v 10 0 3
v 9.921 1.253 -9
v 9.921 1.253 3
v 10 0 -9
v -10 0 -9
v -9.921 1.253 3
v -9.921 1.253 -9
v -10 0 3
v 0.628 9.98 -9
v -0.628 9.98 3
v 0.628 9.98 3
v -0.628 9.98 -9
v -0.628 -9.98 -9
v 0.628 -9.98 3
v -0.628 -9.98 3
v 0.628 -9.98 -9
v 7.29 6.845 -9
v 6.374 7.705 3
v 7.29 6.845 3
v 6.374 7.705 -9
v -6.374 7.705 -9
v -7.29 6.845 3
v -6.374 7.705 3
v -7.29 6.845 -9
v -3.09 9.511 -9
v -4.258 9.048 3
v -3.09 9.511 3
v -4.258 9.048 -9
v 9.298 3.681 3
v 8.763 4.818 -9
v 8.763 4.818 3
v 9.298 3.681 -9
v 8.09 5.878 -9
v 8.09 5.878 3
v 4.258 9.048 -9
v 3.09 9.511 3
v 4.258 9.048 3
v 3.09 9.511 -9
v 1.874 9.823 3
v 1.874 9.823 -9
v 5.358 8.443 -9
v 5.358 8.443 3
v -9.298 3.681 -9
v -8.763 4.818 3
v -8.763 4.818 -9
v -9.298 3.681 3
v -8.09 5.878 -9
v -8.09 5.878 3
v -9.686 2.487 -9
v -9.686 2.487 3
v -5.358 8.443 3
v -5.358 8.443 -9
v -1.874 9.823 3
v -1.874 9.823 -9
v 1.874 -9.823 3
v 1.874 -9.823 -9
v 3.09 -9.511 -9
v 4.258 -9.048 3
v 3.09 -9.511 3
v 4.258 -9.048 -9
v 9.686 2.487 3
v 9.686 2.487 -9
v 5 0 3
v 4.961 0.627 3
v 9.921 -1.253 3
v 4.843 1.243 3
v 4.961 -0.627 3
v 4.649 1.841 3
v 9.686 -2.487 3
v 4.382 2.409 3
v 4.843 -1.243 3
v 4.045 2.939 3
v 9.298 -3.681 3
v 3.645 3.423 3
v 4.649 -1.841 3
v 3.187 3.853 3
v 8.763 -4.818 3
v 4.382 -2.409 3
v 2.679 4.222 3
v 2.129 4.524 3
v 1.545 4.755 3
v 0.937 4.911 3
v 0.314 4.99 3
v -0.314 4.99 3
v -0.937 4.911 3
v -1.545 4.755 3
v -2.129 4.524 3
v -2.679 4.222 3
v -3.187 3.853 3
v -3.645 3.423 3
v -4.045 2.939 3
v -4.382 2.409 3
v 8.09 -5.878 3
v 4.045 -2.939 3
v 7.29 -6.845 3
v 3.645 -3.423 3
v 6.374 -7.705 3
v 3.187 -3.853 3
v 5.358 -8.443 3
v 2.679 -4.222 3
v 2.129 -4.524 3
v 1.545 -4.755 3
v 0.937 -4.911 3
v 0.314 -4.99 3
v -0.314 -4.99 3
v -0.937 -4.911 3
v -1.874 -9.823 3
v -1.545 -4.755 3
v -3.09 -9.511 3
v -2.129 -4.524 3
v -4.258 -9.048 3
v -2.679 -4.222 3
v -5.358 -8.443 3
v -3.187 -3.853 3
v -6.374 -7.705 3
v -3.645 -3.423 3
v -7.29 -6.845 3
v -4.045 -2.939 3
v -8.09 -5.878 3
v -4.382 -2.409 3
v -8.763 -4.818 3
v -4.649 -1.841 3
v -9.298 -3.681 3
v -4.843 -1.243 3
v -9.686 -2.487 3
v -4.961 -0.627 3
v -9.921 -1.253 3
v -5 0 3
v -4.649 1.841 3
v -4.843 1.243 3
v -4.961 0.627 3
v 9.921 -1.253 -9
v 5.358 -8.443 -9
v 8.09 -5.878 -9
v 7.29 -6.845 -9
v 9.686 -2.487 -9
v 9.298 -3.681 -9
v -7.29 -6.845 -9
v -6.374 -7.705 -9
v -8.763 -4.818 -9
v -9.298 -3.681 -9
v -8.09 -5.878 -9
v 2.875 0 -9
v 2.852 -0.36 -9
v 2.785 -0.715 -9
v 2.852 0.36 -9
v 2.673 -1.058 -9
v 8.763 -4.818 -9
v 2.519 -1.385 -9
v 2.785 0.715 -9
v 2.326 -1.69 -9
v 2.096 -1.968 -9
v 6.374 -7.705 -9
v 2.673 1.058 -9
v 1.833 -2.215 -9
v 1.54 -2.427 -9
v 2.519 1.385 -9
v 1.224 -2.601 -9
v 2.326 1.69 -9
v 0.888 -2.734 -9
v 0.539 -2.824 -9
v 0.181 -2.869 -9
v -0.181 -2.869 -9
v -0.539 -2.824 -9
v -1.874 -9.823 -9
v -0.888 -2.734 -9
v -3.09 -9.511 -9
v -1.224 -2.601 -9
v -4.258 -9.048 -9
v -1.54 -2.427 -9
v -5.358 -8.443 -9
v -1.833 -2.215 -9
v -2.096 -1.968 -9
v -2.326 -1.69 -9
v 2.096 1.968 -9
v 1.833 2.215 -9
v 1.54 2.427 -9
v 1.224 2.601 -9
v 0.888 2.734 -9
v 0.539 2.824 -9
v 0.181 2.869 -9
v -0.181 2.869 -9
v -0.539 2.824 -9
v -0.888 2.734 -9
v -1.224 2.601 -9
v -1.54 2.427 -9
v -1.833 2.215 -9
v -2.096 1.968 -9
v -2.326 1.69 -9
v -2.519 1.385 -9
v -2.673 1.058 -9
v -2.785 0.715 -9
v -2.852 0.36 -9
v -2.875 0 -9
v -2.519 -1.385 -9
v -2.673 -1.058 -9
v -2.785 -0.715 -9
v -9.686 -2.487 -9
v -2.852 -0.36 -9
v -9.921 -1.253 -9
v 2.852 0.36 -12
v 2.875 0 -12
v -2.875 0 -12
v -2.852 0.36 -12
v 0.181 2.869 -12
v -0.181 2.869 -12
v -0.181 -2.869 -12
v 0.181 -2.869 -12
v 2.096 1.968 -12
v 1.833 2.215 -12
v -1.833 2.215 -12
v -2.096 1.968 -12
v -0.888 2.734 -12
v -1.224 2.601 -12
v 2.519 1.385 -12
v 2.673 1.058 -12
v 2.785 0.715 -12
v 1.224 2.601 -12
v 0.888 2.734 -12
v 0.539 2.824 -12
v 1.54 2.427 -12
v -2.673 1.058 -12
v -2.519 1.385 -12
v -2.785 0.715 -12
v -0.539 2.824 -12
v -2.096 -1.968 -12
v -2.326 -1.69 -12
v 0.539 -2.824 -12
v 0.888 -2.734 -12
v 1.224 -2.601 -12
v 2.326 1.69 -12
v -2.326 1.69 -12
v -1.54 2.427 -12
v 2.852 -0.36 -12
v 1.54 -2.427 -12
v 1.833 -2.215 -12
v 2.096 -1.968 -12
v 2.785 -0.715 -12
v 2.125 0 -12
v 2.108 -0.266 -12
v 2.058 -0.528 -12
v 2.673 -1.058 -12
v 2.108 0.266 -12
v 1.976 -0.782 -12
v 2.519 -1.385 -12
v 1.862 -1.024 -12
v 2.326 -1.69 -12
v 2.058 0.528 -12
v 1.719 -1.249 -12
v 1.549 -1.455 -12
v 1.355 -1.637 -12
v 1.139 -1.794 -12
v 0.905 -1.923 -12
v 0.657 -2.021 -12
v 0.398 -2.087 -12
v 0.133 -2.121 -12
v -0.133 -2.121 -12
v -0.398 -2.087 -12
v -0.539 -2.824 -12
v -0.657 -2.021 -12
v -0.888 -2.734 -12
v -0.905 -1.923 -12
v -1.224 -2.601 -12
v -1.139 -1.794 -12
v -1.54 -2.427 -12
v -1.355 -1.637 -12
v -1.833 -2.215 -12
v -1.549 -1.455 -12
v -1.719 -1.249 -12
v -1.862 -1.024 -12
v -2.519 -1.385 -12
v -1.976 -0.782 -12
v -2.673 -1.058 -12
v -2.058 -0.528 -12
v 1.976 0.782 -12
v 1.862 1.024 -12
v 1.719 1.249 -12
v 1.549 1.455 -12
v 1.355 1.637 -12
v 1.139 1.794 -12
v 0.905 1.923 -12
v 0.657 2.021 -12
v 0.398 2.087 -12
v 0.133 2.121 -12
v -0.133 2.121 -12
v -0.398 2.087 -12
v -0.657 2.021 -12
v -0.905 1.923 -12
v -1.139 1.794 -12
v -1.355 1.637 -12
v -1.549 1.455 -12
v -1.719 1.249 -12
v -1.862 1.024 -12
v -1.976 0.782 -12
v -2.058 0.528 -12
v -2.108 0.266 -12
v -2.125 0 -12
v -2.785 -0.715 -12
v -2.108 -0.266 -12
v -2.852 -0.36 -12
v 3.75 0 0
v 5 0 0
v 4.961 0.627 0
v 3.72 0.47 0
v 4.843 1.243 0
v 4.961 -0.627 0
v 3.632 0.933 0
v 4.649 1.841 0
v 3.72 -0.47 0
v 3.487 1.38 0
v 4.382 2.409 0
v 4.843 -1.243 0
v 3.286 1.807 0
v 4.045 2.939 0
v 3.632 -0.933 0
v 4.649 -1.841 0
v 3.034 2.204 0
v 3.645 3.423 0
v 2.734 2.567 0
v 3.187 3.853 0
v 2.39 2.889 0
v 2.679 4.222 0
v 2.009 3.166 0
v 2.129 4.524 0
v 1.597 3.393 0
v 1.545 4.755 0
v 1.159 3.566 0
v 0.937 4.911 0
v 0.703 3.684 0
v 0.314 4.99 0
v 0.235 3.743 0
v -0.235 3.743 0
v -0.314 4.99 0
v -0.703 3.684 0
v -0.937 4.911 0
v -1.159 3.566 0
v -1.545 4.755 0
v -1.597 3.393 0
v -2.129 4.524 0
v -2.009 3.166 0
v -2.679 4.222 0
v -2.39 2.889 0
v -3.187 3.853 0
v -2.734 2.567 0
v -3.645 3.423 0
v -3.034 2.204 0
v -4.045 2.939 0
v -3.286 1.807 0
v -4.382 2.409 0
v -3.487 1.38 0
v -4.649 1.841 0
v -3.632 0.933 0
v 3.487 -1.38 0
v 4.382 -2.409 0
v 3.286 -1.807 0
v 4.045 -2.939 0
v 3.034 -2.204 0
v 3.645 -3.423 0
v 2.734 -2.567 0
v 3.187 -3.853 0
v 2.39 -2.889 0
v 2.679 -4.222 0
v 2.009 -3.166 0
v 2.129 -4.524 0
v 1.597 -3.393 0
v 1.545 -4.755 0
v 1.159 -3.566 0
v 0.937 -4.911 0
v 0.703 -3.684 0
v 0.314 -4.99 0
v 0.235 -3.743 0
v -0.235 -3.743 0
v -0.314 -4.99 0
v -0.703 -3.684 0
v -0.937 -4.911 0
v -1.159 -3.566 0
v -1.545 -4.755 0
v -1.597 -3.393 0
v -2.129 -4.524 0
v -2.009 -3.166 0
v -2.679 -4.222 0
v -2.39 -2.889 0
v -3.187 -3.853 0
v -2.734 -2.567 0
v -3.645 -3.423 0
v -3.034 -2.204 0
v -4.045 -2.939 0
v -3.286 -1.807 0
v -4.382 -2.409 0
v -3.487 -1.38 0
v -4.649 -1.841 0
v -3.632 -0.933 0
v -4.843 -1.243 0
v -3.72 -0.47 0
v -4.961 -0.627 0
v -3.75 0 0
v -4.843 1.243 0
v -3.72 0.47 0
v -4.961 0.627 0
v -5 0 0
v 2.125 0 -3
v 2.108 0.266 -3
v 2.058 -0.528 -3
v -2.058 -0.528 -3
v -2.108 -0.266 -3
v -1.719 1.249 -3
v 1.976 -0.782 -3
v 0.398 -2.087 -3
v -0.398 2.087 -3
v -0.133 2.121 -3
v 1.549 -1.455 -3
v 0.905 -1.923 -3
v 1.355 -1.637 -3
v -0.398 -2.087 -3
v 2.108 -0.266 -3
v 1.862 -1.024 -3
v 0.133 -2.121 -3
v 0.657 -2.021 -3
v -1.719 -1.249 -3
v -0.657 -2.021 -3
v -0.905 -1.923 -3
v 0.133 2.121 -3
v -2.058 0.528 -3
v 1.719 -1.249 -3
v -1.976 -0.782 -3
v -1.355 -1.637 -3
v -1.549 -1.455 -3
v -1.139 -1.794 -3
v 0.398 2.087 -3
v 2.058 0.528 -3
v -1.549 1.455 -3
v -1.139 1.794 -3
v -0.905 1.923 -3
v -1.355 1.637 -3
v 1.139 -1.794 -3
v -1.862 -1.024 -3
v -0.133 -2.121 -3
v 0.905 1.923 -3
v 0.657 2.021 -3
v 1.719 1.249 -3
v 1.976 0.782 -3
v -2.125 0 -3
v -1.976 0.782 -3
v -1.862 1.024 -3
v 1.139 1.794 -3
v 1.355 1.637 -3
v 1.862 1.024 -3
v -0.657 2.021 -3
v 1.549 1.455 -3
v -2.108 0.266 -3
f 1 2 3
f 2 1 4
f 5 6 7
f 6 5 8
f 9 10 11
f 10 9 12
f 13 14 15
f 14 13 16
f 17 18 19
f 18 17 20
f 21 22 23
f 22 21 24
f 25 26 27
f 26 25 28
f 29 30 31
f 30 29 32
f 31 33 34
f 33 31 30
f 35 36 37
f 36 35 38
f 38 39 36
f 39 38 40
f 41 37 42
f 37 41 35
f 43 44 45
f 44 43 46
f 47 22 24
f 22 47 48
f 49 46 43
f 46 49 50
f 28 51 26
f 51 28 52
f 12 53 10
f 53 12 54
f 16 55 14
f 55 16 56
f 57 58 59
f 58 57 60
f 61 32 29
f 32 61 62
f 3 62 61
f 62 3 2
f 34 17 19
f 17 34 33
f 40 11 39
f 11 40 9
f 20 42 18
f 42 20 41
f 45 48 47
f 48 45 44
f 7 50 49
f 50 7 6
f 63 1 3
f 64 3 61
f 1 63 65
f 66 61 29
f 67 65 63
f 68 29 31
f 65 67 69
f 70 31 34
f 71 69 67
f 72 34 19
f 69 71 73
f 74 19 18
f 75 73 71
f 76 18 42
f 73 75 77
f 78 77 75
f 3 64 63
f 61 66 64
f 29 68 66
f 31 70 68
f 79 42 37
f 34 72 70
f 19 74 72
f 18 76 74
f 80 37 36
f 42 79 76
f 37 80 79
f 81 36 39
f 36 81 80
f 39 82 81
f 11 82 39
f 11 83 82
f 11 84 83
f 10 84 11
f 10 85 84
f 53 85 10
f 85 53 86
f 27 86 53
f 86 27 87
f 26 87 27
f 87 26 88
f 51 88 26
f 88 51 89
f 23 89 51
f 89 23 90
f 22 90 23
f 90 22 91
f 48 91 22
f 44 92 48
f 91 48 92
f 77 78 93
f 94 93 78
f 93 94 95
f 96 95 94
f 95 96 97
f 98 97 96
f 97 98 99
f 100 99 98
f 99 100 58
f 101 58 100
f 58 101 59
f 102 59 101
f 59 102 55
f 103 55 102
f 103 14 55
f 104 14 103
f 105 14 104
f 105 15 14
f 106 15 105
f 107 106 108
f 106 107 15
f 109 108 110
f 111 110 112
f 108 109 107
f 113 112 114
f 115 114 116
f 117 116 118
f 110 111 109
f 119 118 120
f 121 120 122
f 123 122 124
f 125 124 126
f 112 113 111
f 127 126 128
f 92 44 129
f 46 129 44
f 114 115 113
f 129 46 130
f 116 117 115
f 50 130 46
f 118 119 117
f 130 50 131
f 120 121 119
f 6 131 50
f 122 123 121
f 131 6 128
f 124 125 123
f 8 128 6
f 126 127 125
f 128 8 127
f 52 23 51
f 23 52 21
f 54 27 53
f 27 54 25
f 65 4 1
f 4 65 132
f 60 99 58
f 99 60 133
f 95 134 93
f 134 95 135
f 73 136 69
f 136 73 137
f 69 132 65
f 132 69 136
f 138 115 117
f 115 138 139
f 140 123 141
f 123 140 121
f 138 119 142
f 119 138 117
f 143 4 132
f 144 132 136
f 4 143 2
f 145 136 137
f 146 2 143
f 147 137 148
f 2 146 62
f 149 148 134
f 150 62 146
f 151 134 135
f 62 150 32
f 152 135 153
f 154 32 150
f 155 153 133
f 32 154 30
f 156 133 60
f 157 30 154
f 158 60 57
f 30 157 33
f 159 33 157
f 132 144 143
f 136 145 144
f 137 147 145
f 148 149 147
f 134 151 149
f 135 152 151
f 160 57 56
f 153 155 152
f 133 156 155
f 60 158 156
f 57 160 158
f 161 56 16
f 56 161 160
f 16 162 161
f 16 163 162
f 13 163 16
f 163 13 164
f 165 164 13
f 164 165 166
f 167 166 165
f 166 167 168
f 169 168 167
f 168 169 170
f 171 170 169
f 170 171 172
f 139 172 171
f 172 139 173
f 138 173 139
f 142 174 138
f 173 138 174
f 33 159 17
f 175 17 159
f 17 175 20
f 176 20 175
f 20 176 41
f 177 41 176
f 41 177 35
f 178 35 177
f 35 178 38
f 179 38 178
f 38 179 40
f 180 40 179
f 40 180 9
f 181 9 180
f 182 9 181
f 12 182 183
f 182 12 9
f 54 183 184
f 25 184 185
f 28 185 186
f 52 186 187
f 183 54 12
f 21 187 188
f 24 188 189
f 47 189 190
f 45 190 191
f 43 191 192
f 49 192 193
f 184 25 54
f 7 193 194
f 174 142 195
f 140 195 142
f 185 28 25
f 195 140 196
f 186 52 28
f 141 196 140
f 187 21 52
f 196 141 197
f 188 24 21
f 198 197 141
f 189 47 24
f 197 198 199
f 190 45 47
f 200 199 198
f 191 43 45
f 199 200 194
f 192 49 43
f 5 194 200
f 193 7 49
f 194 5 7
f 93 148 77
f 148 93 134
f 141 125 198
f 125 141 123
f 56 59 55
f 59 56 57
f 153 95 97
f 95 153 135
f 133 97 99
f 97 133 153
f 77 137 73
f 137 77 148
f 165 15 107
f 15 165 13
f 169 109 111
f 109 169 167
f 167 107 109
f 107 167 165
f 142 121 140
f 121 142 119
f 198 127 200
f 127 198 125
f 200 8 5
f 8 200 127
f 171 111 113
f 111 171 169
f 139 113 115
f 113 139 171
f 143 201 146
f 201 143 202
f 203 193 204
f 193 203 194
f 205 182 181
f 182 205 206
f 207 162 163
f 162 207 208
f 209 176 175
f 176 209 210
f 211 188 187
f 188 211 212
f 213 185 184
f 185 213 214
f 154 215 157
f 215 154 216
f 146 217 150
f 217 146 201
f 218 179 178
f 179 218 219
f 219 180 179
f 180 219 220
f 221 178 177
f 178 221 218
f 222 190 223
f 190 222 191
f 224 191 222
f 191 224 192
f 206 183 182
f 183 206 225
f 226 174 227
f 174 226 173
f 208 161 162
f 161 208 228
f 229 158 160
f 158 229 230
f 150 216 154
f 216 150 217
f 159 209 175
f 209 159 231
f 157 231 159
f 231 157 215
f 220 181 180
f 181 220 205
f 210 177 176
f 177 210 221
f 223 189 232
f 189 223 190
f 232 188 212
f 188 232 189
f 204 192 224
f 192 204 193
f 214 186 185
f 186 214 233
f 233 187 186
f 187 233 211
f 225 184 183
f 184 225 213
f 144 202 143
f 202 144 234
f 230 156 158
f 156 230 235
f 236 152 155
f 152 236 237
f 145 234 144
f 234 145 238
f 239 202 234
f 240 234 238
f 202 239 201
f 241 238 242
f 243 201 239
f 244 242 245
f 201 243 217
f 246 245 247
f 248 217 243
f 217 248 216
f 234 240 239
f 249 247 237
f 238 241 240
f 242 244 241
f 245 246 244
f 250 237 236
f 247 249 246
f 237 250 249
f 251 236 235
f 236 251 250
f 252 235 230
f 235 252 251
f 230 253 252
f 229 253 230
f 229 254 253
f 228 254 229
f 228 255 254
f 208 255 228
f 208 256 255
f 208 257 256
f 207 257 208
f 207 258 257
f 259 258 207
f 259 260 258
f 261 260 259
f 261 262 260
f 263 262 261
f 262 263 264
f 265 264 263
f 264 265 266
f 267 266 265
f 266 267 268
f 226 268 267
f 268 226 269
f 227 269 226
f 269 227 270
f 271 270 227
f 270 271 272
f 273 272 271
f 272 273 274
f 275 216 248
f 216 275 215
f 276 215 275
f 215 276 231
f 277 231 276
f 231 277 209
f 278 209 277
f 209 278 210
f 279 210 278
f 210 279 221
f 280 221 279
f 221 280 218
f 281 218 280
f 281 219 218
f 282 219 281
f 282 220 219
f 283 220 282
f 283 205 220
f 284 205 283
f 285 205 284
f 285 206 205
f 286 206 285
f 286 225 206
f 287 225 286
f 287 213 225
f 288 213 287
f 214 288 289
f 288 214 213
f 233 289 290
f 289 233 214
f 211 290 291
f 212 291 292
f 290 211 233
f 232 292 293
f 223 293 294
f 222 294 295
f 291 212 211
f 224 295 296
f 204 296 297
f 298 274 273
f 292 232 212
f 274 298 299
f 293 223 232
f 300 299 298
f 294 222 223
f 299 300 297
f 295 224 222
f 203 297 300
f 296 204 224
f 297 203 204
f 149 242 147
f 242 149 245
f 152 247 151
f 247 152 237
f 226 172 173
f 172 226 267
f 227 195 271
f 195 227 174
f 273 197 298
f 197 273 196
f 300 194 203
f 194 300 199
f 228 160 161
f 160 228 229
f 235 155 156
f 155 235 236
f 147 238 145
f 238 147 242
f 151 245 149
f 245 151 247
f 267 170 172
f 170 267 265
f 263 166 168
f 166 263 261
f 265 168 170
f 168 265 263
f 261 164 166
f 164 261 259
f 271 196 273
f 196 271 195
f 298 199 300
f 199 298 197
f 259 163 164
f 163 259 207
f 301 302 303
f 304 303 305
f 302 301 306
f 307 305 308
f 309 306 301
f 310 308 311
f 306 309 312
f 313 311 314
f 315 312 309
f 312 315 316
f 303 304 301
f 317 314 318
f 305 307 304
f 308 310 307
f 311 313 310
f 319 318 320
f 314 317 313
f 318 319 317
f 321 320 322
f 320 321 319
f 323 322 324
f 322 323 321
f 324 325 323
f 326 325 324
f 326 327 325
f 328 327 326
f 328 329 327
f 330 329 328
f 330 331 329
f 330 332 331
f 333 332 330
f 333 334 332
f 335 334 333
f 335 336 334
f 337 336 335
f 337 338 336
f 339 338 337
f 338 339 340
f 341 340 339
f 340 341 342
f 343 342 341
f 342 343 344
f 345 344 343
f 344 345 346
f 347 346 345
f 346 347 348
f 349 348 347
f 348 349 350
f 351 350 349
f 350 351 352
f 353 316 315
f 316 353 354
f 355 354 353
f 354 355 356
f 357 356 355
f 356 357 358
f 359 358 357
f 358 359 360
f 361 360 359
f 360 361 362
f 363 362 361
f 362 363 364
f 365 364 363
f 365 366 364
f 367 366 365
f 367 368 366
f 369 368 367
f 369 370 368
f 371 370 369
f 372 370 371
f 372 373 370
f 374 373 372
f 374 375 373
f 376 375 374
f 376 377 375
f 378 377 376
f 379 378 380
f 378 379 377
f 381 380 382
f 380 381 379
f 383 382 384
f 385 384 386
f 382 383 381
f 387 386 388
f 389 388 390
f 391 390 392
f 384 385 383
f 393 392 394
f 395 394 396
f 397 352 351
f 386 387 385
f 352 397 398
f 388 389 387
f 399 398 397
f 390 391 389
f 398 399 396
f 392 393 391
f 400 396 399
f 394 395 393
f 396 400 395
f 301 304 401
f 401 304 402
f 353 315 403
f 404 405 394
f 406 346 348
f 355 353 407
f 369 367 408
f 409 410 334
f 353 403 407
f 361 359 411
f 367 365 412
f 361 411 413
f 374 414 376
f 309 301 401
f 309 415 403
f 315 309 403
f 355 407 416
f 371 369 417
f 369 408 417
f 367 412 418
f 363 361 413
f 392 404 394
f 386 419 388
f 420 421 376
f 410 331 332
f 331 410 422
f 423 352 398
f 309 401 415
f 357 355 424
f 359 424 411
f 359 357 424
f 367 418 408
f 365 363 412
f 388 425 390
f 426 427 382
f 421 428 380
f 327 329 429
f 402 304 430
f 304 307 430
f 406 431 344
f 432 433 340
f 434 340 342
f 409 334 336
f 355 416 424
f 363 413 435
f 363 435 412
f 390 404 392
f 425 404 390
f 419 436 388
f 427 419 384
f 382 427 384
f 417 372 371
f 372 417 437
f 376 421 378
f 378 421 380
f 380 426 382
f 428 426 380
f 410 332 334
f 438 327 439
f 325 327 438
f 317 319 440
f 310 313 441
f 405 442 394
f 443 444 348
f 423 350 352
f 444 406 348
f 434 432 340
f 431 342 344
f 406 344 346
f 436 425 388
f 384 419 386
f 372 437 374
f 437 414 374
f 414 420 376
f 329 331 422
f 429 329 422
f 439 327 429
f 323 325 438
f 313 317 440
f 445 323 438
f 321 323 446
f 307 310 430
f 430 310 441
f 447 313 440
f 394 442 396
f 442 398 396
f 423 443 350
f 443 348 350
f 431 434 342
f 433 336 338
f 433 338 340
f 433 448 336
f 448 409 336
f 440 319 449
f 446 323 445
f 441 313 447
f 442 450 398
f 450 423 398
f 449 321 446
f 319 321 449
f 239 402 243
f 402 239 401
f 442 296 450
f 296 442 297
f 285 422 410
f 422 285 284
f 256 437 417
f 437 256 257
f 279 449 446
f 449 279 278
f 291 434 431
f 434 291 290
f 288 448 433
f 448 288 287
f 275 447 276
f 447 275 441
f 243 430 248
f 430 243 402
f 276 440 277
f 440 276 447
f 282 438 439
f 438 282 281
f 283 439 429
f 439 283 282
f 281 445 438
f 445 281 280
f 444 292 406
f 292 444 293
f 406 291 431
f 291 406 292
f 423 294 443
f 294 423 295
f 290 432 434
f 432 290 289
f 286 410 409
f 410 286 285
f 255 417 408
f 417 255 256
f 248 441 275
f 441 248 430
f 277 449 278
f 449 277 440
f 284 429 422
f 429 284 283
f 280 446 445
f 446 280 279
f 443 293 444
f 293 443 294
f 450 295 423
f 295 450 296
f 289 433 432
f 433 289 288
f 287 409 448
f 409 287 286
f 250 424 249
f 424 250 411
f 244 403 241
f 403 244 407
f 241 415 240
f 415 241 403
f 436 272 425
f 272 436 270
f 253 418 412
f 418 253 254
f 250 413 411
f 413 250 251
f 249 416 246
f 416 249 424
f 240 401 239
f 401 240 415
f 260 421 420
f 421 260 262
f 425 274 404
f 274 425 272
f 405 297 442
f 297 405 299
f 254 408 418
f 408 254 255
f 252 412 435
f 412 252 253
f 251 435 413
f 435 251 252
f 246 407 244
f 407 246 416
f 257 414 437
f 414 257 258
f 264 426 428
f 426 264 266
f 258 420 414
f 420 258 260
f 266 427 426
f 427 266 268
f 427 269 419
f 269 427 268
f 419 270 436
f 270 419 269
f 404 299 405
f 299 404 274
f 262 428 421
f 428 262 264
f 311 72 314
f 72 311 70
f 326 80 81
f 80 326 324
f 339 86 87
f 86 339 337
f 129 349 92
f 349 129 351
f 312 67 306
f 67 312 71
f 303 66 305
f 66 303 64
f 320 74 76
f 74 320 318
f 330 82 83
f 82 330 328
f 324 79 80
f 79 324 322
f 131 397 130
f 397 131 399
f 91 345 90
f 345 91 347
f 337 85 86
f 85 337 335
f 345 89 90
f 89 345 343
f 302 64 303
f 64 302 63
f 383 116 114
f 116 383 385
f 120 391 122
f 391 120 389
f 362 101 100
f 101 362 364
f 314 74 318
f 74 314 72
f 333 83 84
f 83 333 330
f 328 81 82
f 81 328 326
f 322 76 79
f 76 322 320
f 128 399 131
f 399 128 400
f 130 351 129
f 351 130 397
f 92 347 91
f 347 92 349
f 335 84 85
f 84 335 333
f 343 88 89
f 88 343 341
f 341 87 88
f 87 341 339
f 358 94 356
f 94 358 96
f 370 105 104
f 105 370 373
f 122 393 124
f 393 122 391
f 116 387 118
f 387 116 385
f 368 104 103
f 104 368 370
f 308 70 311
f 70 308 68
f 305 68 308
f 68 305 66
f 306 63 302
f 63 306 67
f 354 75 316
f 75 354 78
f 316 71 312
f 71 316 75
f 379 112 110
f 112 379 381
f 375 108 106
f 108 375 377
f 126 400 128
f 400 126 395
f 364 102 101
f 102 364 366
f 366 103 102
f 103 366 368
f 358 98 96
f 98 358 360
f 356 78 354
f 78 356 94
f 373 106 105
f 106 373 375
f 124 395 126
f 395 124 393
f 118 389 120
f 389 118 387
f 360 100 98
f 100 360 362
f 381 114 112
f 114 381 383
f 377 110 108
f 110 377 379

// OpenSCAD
$fn = 50;

difference() {
	union() {
		translate(v = [0, 0, -9.0]) {
			cylinder(h = 12, r = 10.0);
		}
		#translate(v = [0, 0, -12.0]) {
			cylinder(h = 12, r = 2.875);
		}
	}
	union() {
		translate(v = [0, 0, 0]) {
			rotate(a = [0, 0, 0]) {
				difference() {
					union() {
						translate(v = [0, 0, -12.0]) {
							cylinder(h = 12, r = 2.0);
						}
						translate(v = [0, 0, -3]) {
							cylinder(h = 3, r1 = 2.125, r2 = 3.75);
						}
						translate(v = [0, 0, -12.0]) {
							cylinder(h = 12, r = 2.125);
						}
						translate(v = [0, 0, -12.0]) {
							cylinder(h = 12, r = 2.0);
						}
					}
					union();
				}
			}
		}
		#cylinder(h = 3, r = 5.0);
	}
}
